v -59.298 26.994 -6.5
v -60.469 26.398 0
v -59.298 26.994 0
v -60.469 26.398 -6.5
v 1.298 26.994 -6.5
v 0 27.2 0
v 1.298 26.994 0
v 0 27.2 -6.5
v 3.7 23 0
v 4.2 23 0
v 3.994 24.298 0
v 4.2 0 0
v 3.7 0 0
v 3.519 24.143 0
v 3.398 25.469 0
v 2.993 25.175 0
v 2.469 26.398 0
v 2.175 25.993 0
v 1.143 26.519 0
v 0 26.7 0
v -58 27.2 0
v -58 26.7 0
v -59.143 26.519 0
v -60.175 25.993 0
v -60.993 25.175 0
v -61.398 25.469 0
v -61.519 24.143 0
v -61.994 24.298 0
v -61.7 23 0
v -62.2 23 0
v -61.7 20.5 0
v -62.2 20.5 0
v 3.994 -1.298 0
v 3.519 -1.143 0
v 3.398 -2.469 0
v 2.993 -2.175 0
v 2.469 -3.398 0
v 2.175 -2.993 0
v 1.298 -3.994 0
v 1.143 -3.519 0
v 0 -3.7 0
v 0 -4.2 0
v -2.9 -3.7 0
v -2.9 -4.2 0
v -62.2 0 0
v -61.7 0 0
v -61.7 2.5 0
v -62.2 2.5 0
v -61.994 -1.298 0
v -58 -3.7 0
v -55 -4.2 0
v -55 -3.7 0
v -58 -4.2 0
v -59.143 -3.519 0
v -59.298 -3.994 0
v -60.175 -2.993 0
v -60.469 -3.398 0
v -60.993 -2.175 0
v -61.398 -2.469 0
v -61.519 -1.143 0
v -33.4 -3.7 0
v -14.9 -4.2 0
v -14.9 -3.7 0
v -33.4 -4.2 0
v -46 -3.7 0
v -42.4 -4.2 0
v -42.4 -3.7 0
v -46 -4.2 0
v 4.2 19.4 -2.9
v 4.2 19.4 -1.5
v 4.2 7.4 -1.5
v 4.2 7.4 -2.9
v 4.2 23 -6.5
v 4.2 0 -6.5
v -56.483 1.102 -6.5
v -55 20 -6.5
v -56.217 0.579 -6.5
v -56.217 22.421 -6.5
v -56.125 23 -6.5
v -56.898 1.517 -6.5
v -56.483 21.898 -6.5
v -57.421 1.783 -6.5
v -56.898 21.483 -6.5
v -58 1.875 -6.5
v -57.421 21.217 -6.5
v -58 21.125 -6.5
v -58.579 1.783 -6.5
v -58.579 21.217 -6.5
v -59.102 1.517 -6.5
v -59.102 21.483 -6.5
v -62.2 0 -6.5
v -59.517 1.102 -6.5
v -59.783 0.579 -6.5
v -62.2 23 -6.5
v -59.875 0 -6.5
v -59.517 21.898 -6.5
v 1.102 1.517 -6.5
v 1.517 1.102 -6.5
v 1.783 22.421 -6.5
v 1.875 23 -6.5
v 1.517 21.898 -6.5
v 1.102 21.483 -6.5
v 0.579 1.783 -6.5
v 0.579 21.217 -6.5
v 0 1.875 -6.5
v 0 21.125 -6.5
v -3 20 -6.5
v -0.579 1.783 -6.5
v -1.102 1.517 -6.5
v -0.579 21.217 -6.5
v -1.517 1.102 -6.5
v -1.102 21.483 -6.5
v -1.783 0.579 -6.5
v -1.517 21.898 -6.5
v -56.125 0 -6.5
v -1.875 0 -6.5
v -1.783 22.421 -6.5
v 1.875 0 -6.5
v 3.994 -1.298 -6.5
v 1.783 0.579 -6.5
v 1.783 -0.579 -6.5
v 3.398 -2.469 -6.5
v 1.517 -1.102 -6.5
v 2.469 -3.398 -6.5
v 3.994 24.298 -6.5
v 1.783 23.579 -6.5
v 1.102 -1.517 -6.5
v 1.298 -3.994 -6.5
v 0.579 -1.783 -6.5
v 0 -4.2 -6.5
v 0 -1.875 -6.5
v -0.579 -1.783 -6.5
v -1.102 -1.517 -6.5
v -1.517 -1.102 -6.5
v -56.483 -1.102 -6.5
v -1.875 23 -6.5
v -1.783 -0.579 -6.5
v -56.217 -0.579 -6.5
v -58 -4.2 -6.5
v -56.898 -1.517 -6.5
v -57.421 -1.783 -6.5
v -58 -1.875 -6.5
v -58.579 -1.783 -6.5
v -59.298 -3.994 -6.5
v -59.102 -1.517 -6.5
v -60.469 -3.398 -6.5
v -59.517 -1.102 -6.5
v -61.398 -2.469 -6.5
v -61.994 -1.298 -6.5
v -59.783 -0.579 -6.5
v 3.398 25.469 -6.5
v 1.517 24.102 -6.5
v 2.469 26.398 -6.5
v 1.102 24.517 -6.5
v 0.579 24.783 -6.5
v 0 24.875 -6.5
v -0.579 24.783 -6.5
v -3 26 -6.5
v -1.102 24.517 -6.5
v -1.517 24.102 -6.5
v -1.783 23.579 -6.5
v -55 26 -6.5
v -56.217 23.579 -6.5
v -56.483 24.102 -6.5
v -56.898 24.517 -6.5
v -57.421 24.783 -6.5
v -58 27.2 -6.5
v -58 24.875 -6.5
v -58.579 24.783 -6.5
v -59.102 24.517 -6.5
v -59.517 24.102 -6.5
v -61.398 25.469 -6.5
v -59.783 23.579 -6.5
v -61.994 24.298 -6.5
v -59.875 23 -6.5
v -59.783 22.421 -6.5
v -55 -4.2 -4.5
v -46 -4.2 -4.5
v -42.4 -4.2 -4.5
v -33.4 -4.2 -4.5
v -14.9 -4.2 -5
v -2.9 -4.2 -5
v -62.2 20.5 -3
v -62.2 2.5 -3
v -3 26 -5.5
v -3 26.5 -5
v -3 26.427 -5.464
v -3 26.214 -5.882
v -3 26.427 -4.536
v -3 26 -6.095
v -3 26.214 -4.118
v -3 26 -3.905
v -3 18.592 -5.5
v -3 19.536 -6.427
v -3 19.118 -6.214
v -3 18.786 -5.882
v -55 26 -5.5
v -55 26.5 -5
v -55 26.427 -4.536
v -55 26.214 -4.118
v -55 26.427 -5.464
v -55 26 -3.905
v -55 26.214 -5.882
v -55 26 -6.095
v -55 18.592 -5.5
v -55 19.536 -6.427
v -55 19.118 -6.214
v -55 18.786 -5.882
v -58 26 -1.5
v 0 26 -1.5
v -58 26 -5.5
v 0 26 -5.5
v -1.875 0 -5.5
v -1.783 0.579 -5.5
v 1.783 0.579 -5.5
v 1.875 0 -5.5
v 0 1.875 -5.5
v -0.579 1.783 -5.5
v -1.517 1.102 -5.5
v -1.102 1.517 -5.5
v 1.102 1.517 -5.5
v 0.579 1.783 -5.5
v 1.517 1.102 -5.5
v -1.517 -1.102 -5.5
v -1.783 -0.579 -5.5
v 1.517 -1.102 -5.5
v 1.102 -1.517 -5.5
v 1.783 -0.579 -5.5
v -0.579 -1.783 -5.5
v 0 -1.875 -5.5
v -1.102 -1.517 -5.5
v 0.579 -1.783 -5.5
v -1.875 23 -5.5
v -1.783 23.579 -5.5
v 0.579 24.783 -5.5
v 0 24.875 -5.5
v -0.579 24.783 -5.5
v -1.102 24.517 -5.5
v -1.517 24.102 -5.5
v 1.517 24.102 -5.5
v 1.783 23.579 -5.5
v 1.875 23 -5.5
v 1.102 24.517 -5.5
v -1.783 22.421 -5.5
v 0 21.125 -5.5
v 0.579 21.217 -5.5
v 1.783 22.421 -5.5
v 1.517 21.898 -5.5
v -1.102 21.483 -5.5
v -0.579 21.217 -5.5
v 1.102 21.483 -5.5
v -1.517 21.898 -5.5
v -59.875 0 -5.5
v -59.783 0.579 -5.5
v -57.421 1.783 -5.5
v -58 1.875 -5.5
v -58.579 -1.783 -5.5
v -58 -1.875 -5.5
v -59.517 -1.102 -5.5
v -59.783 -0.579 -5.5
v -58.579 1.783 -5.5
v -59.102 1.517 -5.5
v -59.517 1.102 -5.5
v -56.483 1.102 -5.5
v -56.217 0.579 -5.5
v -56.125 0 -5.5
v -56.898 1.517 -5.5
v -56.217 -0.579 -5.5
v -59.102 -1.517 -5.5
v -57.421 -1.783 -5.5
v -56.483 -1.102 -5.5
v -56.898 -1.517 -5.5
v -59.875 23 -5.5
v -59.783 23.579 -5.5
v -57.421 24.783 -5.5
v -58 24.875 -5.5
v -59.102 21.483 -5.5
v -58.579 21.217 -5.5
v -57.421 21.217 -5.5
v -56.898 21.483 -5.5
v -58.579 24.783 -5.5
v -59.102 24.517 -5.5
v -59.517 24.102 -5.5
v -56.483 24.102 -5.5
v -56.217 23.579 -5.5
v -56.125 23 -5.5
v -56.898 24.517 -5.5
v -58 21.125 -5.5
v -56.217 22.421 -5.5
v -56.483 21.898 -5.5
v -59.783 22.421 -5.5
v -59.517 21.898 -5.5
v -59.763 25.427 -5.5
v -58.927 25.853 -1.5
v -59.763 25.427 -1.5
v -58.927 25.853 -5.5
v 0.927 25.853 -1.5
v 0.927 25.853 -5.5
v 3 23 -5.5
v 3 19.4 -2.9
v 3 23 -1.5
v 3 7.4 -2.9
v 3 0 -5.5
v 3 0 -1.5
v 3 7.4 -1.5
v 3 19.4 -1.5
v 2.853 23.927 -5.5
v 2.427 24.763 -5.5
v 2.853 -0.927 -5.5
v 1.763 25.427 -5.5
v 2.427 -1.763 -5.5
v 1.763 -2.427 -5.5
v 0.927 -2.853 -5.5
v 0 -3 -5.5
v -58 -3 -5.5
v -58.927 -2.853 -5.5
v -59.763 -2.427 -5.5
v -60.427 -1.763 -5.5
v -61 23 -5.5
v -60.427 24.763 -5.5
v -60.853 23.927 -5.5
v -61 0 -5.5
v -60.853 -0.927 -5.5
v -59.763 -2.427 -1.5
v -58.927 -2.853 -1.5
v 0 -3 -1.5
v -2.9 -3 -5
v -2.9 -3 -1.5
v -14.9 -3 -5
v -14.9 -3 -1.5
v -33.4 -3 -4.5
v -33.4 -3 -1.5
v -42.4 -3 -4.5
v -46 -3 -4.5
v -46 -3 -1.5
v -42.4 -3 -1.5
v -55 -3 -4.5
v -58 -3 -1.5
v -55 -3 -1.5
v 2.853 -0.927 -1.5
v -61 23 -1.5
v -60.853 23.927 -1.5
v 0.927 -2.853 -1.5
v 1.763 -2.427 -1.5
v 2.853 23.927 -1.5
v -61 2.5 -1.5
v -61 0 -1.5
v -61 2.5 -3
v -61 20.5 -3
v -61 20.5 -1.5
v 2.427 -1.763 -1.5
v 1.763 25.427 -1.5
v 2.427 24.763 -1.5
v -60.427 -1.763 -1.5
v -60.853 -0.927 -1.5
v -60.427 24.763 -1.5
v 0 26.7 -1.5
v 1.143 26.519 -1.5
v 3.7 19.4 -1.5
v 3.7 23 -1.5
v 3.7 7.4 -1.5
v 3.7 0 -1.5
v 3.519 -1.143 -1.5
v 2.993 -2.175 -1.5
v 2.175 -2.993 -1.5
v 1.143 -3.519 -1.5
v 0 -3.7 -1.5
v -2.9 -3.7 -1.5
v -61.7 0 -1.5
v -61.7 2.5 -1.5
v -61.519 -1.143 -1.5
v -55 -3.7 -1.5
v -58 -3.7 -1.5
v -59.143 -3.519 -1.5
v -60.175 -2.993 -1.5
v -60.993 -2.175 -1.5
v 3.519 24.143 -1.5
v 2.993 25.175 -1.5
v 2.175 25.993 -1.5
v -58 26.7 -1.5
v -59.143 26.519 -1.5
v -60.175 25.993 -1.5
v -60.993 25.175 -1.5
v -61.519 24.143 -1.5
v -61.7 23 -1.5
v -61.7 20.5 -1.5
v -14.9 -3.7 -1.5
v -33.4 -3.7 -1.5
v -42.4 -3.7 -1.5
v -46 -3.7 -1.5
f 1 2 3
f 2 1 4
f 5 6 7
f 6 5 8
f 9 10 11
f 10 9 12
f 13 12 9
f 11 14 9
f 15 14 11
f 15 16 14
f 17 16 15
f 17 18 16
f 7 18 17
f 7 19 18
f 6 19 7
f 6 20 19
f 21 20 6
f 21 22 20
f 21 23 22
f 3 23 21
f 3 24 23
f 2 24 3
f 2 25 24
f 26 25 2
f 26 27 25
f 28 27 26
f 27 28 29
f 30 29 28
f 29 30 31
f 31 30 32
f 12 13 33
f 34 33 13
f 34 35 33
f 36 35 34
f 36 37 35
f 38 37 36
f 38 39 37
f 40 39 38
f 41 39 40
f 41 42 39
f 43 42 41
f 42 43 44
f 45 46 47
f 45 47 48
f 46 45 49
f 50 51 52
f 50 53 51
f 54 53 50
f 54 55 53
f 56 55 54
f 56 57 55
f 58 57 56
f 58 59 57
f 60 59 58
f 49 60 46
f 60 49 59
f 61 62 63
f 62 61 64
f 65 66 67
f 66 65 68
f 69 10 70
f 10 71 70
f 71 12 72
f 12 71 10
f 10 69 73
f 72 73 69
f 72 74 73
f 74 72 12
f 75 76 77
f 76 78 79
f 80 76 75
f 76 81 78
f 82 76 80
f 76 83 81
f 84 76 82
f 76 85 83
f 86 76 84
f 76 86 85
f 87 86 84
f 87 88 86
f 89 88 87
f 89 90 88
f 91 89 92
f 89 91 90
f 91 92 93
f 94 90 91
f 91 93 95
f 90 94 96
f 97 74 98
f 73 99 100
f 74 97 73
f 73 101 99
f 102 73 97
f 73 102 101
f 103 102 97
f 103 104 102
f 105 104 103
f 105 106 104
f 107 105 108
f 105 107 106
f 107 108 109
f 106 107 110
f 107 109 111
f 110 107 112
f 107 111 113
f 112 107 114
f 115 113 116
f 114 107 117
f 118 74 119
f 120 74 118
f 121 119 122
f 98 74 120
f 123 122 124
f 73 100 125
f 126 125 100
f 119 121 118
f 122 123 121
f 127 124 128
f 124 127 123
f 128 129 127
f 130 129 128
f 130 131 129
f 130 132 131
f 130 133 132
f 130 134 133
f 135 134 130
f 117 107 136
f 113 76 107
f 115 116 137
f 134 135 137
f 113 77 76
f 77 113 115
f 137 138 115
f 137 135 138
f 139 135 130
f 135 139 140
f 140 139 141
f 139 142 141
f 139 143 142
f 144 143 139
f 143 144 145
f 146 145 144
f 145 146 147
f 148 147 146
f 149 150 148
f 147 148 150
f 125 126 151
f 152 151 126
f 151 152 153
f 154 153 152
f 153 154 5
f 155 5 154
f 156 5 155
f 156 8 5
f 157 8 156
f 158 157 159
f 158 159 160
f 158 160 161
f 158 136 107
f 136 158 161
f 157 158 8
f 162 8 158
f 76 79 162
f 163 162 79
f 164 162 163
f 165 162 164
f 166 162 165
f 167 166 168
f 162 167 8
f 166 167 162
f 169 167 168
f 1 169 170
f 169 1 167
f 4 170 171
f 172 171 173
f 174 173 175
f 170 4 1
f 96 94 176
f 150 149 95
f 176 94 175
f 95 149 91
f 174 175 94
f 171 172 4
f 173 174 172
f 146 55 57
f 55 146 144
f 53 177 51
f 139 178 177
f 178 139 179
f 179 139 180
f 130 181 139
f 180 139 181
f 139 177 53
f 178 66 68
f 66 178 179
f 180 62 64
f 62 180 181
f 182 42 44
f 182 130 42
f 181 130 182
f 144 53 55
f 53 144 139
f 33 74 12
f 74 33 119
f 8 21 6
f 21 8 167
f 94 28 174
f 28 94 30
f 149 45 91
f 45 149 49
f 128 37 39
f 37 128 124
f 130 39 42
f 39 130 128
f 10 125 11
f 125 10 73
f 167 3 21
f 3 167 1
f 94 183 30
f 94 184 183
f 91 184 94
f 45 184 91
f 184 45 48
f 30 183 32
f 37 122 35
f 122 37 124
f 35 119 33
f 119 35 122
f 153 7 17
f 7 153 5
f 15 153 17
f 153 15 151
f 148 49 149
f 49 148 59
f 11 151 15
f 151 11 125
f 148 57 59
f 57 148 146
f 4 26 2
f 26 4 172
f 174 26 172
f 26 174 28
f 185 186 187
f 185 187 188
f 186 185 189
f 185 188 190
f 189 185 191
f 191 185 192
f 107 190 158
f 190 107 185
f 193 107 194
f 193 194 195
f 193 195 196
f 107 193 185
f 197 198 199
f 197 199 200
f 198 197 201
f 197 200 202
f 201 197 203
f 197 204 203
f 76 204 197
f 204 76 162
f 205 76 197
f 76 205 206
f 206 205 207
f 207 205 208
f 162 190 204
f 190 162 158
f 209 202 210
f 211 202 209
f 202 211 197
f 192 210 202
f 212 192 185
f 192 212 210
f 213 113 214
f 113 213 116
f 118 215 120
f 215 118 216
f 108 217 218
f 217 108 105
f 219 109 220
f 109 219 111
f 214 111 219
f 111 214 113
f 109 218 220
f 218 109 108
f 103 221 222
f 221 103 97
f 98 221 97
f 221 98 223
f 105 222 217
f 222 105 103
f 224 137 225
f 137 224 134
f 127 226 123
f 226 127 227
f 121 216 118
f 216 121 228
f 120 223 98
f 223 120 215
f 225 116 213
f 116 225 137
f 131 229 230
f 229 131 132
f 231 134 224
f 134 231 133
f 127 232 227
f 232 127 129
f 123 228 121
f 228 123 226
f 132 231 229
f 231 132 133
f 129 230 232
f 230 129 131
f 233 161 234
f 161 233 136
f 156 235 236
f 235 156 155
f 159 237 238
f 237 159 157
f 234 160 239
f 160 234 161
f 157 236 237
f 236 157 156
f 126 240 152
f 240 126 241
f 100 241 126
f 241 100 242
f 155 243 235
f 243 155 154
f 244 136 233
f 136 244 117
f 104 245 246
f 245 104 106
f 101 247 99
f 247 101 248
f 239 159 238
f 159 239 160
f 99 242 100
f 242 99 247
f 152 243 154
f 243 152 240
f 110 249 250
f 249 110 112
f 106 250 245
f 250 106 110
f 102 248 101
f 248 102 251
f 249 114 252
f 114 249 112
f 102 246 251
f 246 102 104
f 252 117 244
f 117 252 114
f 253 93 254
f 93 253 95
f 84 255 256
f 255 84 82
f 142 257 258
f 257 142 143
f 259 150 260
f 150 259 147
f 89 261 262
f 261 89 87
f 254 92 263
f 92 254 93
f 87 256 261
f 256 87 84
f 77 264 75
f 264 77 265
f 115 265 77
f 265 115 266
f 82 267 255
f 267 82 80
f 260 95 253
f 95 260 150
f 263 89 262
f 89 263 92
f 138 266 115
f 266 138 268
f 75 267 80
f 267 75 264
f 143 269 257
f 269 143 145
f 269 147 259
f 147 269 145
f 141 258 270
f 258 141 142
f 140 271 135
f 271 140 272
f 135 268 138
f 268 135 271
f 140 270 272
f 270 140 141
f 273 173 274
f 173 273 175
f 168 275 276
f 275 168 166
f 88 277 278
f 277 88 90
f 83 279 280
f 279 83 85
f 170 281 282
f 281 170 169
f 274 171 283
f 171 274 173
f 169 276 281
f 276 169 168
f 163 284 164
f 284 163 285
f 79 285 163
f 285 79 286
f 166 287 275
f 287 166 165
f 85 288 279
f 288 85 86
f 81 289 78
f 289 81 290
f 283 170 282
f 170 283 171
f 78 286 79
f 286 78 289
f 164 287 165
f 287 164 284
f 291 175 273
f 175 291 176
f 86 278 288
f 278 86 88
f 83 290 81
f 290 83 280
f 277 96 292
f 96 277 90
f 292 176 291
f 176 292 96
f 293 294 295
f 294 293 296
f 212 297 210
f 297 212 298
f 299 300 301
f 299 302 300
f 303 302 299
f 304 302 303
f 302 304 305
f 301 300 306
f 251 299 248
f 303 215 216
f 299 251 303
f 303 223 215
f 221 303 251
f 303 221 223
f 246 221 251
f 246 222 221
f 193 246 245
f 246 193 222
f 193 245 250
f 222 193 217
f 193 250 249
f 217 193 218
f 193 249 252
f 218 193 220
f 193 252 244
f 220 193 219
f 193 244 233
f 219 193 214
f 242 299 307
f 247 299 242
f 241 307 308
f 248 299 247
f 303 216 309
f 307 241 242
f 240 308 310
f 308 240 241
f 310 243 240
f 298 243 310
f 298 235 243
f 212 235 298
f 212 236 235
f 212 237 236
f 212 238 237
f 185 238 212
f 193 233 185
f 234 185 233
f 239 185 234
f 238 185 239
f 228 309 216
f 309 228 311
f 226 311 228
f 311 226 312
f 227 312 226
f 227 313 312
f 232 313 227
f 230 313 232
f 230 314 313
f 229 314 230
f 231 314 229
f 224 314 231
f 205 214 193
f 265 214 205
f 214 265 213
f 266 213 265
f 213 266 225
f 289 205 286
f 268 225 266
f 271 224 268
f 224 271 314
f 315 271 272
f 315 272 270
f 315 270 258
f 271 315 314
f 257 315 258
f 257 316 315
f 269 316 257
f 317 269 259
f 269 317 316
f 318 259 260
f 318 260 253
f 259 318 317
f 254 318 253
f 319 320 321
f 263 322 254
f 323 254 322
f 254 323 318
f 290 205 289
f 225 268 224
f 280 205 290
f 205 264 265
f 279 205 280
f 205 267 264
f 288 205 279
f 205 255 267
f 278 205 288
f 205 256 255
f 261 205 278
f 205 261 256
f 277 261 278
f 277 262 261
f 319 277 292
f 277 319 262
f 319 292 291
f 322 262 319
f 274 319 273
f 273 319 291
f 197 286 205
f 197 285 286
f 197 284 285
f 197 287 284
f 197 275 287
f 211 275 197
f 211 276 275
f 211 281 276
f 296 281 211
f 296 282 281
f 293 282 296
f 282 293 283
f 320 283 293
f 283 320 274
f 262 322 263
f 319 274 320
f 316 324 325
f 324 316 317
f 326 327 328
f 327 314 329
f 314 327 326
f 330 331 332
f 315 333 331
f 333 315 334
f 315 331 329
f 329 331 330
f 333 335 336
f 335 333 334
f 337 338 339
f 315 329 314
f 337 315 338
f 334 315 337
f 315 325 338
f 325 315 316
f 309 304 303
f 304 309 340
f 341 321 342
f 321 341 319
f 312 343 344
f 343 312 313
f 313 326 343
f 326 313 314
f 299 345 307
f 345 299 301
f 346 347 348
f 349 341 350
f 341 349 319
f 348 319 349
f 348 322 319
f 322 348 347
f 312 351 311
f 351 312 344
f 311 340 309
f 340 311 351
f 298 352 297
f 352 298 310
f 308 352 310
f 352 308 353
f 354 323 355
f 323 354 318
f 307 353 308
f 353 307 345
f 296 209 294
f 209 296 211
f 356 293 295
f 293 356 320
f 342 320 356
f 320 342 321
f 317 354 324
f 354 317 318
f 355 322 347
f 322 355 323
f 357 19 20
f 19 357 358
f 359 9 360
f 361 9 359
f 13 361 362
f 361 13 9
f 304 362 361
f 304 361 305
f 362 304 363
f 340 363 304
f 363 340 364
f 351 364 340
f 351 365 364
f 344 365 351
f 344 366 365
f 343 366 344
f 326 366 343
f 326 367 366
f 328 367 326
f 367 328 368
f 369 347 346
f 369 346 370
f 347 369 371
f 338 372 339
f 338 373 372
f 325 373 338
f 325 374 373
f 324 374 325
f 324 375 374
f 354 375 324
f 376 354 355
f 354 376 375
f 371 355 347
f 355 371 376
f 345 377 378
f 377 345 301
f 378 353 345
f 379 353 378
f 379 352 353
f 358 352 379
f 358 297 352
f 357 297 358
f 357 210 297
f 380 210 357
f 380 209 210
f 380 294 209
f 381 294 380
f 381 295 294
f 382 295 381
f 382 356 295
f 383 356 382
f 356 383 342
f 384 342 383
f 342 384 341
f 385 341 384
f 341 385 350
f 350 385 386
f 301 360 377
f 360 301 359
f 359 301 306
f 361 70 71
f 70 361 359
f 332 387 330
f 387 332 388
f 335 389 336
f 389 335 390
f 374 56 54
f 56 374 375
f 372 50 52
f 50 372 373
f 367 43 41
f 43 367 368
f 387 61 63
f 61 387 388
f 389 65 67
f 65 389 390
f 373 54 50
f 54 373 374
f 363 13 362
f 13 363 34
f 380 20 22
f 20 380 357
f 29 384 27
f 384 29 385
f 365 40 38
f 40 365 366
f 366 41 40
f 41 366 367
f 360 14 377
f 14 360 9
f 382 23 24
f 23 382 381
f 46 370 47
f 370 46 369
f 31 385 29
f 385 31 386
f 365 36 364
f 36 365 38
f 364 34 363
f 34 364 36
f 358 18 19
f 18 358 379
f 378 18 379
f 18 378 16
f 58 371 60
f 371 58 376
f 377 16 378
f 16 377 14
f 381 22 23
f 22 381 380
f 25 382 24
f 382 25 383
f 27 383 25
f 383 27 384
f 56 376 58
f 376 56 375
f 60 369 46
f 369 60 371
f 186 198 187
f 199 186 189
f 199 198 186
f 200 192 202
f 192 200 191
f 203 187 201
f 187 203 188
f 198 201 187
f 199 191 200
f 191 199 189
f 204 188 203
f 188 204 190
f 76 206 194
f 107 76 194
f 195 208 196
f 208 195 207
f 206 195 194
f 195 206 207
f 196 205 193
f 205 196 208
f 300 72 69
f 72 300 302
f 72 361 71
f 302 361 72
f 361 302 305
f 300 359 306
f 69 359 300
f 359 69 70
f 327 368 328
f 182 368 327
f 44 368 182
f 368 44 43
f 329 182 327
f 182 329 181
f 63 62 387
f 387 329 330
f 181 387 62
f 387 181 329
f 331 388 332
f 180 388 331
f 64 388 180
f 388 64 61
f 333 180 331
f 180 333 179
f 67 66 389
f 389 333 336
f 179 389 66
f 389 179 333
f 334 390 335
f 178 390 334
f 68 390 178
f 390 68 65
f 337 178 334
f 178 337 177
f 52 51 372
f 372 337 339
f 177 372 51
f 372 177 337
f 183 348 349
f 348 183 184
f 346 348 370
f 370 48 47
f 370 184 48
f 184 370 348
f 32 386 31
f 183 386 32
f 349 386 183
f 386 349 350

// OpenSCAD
$fn=20;
// Openscad Raspberry Pi Zero W Test Controller Top
// Author: Brian Khuu 2019
// Note: Dimentions based on https://blog.protoneer.co.nz/raspberry-pi-zero-footprint-dimensions/

module rpi_zero_bulk(h_mm, outset)
{
  header_tol = 1;
  hole_tol = 1;

  difference()
  {
    union()
    {
      hull()
      {
        translate([0,0,0])
          cylinder(r=3.5+outset,h=h_mm);
        translate([0,23,0])
          cylinder(r=3.5+outset,h=h_mm);
        translate([58,0,0])
          cylinder(r=3.5+outset,h=h_mm);
        translate([58,23,0])
          cylinder(r=3.5+outset,h=h_mm);
      }
    }

    // Header
    translate([29,23,+h_mm/2])
      cube([51+header_tol,5+header_tol,h_mm], center=true);
    
    // Holes
    translate([0,0,-1])
      cylinder(r=((2.75+hole_tol)/2),h=h_mm+2);
    translate([0,23,-1])
      cylinder(r=((2.75+hole_tol)/2),h=h_mm+2);
    translate([58,0,-1])
      cylinder(r=((2.75+hole_tol)/2),h=h_mm+2);
    translate([58,23,-1])
      cylinder(r=((2.75+hole_tol)/2),h=h_mm+2);
  }
}

module rpi_zero_hat_spacer()
{
  pcb_h = 1.5;
  module slot_cut(w,d,hpcbtosmd)
  {
    slot_h = hpcbtosmd - pcb_h; // height from bottom pcb to top of smd part
    translate([0,0,slot_h/2])
      cube([w, d, slot_h], center=true);
  }
  
  
  %translate([0,0,5])
  rpi_zero_bulk(pcb_h, 0.1); // PCB

  difference()
  {
    rpi_zero_bulk(pcb_h+5, 0.7); // Main Bulk
    
    rpi_zero_bulk(pcb_h+4, -0.5); // Inner Hollow For Electronics
    rpi_zero_bulk(pcb_h, 0.2); // PCB
    
    // (Special) OLED Hat SMD header pads is getting in the way
    #translate([29,23+3.5-1.5,5])
      rotate([0,90,0])
      cylinder(r=1.5, h=52, center=true);
    #translate([29,23+3.5-1.5-5,5])
      rotate([0,90,0])
      cylinder(r=1.5, h=52, center=true);
    
    // SD Card Slot
    #translate([0,(16.9-3.5),pcb_h])
      slot_cut(12,12, 2.9);

    // HDMI Slot
    #translate([(12.4-3.5),0,0])
      slot_cut(12,12,5+pcb_h);
    
    // USB Slot
    #translate([(41.4-3.5),0,0])
      slot_cut(9,9,4.5+pcb_h);
    
    // PWR USB Slot
    #translate([(54-3.5),0,0])
      slot_cut(9,9,4.5+pcb_h);
    
    // Flex Slot
    #translate([58,23/2,0])
      slot_cut(18,18,3+pcb_h);
  }
}

rotate([0,180,0])
rpi_zero_hat_spacer();
